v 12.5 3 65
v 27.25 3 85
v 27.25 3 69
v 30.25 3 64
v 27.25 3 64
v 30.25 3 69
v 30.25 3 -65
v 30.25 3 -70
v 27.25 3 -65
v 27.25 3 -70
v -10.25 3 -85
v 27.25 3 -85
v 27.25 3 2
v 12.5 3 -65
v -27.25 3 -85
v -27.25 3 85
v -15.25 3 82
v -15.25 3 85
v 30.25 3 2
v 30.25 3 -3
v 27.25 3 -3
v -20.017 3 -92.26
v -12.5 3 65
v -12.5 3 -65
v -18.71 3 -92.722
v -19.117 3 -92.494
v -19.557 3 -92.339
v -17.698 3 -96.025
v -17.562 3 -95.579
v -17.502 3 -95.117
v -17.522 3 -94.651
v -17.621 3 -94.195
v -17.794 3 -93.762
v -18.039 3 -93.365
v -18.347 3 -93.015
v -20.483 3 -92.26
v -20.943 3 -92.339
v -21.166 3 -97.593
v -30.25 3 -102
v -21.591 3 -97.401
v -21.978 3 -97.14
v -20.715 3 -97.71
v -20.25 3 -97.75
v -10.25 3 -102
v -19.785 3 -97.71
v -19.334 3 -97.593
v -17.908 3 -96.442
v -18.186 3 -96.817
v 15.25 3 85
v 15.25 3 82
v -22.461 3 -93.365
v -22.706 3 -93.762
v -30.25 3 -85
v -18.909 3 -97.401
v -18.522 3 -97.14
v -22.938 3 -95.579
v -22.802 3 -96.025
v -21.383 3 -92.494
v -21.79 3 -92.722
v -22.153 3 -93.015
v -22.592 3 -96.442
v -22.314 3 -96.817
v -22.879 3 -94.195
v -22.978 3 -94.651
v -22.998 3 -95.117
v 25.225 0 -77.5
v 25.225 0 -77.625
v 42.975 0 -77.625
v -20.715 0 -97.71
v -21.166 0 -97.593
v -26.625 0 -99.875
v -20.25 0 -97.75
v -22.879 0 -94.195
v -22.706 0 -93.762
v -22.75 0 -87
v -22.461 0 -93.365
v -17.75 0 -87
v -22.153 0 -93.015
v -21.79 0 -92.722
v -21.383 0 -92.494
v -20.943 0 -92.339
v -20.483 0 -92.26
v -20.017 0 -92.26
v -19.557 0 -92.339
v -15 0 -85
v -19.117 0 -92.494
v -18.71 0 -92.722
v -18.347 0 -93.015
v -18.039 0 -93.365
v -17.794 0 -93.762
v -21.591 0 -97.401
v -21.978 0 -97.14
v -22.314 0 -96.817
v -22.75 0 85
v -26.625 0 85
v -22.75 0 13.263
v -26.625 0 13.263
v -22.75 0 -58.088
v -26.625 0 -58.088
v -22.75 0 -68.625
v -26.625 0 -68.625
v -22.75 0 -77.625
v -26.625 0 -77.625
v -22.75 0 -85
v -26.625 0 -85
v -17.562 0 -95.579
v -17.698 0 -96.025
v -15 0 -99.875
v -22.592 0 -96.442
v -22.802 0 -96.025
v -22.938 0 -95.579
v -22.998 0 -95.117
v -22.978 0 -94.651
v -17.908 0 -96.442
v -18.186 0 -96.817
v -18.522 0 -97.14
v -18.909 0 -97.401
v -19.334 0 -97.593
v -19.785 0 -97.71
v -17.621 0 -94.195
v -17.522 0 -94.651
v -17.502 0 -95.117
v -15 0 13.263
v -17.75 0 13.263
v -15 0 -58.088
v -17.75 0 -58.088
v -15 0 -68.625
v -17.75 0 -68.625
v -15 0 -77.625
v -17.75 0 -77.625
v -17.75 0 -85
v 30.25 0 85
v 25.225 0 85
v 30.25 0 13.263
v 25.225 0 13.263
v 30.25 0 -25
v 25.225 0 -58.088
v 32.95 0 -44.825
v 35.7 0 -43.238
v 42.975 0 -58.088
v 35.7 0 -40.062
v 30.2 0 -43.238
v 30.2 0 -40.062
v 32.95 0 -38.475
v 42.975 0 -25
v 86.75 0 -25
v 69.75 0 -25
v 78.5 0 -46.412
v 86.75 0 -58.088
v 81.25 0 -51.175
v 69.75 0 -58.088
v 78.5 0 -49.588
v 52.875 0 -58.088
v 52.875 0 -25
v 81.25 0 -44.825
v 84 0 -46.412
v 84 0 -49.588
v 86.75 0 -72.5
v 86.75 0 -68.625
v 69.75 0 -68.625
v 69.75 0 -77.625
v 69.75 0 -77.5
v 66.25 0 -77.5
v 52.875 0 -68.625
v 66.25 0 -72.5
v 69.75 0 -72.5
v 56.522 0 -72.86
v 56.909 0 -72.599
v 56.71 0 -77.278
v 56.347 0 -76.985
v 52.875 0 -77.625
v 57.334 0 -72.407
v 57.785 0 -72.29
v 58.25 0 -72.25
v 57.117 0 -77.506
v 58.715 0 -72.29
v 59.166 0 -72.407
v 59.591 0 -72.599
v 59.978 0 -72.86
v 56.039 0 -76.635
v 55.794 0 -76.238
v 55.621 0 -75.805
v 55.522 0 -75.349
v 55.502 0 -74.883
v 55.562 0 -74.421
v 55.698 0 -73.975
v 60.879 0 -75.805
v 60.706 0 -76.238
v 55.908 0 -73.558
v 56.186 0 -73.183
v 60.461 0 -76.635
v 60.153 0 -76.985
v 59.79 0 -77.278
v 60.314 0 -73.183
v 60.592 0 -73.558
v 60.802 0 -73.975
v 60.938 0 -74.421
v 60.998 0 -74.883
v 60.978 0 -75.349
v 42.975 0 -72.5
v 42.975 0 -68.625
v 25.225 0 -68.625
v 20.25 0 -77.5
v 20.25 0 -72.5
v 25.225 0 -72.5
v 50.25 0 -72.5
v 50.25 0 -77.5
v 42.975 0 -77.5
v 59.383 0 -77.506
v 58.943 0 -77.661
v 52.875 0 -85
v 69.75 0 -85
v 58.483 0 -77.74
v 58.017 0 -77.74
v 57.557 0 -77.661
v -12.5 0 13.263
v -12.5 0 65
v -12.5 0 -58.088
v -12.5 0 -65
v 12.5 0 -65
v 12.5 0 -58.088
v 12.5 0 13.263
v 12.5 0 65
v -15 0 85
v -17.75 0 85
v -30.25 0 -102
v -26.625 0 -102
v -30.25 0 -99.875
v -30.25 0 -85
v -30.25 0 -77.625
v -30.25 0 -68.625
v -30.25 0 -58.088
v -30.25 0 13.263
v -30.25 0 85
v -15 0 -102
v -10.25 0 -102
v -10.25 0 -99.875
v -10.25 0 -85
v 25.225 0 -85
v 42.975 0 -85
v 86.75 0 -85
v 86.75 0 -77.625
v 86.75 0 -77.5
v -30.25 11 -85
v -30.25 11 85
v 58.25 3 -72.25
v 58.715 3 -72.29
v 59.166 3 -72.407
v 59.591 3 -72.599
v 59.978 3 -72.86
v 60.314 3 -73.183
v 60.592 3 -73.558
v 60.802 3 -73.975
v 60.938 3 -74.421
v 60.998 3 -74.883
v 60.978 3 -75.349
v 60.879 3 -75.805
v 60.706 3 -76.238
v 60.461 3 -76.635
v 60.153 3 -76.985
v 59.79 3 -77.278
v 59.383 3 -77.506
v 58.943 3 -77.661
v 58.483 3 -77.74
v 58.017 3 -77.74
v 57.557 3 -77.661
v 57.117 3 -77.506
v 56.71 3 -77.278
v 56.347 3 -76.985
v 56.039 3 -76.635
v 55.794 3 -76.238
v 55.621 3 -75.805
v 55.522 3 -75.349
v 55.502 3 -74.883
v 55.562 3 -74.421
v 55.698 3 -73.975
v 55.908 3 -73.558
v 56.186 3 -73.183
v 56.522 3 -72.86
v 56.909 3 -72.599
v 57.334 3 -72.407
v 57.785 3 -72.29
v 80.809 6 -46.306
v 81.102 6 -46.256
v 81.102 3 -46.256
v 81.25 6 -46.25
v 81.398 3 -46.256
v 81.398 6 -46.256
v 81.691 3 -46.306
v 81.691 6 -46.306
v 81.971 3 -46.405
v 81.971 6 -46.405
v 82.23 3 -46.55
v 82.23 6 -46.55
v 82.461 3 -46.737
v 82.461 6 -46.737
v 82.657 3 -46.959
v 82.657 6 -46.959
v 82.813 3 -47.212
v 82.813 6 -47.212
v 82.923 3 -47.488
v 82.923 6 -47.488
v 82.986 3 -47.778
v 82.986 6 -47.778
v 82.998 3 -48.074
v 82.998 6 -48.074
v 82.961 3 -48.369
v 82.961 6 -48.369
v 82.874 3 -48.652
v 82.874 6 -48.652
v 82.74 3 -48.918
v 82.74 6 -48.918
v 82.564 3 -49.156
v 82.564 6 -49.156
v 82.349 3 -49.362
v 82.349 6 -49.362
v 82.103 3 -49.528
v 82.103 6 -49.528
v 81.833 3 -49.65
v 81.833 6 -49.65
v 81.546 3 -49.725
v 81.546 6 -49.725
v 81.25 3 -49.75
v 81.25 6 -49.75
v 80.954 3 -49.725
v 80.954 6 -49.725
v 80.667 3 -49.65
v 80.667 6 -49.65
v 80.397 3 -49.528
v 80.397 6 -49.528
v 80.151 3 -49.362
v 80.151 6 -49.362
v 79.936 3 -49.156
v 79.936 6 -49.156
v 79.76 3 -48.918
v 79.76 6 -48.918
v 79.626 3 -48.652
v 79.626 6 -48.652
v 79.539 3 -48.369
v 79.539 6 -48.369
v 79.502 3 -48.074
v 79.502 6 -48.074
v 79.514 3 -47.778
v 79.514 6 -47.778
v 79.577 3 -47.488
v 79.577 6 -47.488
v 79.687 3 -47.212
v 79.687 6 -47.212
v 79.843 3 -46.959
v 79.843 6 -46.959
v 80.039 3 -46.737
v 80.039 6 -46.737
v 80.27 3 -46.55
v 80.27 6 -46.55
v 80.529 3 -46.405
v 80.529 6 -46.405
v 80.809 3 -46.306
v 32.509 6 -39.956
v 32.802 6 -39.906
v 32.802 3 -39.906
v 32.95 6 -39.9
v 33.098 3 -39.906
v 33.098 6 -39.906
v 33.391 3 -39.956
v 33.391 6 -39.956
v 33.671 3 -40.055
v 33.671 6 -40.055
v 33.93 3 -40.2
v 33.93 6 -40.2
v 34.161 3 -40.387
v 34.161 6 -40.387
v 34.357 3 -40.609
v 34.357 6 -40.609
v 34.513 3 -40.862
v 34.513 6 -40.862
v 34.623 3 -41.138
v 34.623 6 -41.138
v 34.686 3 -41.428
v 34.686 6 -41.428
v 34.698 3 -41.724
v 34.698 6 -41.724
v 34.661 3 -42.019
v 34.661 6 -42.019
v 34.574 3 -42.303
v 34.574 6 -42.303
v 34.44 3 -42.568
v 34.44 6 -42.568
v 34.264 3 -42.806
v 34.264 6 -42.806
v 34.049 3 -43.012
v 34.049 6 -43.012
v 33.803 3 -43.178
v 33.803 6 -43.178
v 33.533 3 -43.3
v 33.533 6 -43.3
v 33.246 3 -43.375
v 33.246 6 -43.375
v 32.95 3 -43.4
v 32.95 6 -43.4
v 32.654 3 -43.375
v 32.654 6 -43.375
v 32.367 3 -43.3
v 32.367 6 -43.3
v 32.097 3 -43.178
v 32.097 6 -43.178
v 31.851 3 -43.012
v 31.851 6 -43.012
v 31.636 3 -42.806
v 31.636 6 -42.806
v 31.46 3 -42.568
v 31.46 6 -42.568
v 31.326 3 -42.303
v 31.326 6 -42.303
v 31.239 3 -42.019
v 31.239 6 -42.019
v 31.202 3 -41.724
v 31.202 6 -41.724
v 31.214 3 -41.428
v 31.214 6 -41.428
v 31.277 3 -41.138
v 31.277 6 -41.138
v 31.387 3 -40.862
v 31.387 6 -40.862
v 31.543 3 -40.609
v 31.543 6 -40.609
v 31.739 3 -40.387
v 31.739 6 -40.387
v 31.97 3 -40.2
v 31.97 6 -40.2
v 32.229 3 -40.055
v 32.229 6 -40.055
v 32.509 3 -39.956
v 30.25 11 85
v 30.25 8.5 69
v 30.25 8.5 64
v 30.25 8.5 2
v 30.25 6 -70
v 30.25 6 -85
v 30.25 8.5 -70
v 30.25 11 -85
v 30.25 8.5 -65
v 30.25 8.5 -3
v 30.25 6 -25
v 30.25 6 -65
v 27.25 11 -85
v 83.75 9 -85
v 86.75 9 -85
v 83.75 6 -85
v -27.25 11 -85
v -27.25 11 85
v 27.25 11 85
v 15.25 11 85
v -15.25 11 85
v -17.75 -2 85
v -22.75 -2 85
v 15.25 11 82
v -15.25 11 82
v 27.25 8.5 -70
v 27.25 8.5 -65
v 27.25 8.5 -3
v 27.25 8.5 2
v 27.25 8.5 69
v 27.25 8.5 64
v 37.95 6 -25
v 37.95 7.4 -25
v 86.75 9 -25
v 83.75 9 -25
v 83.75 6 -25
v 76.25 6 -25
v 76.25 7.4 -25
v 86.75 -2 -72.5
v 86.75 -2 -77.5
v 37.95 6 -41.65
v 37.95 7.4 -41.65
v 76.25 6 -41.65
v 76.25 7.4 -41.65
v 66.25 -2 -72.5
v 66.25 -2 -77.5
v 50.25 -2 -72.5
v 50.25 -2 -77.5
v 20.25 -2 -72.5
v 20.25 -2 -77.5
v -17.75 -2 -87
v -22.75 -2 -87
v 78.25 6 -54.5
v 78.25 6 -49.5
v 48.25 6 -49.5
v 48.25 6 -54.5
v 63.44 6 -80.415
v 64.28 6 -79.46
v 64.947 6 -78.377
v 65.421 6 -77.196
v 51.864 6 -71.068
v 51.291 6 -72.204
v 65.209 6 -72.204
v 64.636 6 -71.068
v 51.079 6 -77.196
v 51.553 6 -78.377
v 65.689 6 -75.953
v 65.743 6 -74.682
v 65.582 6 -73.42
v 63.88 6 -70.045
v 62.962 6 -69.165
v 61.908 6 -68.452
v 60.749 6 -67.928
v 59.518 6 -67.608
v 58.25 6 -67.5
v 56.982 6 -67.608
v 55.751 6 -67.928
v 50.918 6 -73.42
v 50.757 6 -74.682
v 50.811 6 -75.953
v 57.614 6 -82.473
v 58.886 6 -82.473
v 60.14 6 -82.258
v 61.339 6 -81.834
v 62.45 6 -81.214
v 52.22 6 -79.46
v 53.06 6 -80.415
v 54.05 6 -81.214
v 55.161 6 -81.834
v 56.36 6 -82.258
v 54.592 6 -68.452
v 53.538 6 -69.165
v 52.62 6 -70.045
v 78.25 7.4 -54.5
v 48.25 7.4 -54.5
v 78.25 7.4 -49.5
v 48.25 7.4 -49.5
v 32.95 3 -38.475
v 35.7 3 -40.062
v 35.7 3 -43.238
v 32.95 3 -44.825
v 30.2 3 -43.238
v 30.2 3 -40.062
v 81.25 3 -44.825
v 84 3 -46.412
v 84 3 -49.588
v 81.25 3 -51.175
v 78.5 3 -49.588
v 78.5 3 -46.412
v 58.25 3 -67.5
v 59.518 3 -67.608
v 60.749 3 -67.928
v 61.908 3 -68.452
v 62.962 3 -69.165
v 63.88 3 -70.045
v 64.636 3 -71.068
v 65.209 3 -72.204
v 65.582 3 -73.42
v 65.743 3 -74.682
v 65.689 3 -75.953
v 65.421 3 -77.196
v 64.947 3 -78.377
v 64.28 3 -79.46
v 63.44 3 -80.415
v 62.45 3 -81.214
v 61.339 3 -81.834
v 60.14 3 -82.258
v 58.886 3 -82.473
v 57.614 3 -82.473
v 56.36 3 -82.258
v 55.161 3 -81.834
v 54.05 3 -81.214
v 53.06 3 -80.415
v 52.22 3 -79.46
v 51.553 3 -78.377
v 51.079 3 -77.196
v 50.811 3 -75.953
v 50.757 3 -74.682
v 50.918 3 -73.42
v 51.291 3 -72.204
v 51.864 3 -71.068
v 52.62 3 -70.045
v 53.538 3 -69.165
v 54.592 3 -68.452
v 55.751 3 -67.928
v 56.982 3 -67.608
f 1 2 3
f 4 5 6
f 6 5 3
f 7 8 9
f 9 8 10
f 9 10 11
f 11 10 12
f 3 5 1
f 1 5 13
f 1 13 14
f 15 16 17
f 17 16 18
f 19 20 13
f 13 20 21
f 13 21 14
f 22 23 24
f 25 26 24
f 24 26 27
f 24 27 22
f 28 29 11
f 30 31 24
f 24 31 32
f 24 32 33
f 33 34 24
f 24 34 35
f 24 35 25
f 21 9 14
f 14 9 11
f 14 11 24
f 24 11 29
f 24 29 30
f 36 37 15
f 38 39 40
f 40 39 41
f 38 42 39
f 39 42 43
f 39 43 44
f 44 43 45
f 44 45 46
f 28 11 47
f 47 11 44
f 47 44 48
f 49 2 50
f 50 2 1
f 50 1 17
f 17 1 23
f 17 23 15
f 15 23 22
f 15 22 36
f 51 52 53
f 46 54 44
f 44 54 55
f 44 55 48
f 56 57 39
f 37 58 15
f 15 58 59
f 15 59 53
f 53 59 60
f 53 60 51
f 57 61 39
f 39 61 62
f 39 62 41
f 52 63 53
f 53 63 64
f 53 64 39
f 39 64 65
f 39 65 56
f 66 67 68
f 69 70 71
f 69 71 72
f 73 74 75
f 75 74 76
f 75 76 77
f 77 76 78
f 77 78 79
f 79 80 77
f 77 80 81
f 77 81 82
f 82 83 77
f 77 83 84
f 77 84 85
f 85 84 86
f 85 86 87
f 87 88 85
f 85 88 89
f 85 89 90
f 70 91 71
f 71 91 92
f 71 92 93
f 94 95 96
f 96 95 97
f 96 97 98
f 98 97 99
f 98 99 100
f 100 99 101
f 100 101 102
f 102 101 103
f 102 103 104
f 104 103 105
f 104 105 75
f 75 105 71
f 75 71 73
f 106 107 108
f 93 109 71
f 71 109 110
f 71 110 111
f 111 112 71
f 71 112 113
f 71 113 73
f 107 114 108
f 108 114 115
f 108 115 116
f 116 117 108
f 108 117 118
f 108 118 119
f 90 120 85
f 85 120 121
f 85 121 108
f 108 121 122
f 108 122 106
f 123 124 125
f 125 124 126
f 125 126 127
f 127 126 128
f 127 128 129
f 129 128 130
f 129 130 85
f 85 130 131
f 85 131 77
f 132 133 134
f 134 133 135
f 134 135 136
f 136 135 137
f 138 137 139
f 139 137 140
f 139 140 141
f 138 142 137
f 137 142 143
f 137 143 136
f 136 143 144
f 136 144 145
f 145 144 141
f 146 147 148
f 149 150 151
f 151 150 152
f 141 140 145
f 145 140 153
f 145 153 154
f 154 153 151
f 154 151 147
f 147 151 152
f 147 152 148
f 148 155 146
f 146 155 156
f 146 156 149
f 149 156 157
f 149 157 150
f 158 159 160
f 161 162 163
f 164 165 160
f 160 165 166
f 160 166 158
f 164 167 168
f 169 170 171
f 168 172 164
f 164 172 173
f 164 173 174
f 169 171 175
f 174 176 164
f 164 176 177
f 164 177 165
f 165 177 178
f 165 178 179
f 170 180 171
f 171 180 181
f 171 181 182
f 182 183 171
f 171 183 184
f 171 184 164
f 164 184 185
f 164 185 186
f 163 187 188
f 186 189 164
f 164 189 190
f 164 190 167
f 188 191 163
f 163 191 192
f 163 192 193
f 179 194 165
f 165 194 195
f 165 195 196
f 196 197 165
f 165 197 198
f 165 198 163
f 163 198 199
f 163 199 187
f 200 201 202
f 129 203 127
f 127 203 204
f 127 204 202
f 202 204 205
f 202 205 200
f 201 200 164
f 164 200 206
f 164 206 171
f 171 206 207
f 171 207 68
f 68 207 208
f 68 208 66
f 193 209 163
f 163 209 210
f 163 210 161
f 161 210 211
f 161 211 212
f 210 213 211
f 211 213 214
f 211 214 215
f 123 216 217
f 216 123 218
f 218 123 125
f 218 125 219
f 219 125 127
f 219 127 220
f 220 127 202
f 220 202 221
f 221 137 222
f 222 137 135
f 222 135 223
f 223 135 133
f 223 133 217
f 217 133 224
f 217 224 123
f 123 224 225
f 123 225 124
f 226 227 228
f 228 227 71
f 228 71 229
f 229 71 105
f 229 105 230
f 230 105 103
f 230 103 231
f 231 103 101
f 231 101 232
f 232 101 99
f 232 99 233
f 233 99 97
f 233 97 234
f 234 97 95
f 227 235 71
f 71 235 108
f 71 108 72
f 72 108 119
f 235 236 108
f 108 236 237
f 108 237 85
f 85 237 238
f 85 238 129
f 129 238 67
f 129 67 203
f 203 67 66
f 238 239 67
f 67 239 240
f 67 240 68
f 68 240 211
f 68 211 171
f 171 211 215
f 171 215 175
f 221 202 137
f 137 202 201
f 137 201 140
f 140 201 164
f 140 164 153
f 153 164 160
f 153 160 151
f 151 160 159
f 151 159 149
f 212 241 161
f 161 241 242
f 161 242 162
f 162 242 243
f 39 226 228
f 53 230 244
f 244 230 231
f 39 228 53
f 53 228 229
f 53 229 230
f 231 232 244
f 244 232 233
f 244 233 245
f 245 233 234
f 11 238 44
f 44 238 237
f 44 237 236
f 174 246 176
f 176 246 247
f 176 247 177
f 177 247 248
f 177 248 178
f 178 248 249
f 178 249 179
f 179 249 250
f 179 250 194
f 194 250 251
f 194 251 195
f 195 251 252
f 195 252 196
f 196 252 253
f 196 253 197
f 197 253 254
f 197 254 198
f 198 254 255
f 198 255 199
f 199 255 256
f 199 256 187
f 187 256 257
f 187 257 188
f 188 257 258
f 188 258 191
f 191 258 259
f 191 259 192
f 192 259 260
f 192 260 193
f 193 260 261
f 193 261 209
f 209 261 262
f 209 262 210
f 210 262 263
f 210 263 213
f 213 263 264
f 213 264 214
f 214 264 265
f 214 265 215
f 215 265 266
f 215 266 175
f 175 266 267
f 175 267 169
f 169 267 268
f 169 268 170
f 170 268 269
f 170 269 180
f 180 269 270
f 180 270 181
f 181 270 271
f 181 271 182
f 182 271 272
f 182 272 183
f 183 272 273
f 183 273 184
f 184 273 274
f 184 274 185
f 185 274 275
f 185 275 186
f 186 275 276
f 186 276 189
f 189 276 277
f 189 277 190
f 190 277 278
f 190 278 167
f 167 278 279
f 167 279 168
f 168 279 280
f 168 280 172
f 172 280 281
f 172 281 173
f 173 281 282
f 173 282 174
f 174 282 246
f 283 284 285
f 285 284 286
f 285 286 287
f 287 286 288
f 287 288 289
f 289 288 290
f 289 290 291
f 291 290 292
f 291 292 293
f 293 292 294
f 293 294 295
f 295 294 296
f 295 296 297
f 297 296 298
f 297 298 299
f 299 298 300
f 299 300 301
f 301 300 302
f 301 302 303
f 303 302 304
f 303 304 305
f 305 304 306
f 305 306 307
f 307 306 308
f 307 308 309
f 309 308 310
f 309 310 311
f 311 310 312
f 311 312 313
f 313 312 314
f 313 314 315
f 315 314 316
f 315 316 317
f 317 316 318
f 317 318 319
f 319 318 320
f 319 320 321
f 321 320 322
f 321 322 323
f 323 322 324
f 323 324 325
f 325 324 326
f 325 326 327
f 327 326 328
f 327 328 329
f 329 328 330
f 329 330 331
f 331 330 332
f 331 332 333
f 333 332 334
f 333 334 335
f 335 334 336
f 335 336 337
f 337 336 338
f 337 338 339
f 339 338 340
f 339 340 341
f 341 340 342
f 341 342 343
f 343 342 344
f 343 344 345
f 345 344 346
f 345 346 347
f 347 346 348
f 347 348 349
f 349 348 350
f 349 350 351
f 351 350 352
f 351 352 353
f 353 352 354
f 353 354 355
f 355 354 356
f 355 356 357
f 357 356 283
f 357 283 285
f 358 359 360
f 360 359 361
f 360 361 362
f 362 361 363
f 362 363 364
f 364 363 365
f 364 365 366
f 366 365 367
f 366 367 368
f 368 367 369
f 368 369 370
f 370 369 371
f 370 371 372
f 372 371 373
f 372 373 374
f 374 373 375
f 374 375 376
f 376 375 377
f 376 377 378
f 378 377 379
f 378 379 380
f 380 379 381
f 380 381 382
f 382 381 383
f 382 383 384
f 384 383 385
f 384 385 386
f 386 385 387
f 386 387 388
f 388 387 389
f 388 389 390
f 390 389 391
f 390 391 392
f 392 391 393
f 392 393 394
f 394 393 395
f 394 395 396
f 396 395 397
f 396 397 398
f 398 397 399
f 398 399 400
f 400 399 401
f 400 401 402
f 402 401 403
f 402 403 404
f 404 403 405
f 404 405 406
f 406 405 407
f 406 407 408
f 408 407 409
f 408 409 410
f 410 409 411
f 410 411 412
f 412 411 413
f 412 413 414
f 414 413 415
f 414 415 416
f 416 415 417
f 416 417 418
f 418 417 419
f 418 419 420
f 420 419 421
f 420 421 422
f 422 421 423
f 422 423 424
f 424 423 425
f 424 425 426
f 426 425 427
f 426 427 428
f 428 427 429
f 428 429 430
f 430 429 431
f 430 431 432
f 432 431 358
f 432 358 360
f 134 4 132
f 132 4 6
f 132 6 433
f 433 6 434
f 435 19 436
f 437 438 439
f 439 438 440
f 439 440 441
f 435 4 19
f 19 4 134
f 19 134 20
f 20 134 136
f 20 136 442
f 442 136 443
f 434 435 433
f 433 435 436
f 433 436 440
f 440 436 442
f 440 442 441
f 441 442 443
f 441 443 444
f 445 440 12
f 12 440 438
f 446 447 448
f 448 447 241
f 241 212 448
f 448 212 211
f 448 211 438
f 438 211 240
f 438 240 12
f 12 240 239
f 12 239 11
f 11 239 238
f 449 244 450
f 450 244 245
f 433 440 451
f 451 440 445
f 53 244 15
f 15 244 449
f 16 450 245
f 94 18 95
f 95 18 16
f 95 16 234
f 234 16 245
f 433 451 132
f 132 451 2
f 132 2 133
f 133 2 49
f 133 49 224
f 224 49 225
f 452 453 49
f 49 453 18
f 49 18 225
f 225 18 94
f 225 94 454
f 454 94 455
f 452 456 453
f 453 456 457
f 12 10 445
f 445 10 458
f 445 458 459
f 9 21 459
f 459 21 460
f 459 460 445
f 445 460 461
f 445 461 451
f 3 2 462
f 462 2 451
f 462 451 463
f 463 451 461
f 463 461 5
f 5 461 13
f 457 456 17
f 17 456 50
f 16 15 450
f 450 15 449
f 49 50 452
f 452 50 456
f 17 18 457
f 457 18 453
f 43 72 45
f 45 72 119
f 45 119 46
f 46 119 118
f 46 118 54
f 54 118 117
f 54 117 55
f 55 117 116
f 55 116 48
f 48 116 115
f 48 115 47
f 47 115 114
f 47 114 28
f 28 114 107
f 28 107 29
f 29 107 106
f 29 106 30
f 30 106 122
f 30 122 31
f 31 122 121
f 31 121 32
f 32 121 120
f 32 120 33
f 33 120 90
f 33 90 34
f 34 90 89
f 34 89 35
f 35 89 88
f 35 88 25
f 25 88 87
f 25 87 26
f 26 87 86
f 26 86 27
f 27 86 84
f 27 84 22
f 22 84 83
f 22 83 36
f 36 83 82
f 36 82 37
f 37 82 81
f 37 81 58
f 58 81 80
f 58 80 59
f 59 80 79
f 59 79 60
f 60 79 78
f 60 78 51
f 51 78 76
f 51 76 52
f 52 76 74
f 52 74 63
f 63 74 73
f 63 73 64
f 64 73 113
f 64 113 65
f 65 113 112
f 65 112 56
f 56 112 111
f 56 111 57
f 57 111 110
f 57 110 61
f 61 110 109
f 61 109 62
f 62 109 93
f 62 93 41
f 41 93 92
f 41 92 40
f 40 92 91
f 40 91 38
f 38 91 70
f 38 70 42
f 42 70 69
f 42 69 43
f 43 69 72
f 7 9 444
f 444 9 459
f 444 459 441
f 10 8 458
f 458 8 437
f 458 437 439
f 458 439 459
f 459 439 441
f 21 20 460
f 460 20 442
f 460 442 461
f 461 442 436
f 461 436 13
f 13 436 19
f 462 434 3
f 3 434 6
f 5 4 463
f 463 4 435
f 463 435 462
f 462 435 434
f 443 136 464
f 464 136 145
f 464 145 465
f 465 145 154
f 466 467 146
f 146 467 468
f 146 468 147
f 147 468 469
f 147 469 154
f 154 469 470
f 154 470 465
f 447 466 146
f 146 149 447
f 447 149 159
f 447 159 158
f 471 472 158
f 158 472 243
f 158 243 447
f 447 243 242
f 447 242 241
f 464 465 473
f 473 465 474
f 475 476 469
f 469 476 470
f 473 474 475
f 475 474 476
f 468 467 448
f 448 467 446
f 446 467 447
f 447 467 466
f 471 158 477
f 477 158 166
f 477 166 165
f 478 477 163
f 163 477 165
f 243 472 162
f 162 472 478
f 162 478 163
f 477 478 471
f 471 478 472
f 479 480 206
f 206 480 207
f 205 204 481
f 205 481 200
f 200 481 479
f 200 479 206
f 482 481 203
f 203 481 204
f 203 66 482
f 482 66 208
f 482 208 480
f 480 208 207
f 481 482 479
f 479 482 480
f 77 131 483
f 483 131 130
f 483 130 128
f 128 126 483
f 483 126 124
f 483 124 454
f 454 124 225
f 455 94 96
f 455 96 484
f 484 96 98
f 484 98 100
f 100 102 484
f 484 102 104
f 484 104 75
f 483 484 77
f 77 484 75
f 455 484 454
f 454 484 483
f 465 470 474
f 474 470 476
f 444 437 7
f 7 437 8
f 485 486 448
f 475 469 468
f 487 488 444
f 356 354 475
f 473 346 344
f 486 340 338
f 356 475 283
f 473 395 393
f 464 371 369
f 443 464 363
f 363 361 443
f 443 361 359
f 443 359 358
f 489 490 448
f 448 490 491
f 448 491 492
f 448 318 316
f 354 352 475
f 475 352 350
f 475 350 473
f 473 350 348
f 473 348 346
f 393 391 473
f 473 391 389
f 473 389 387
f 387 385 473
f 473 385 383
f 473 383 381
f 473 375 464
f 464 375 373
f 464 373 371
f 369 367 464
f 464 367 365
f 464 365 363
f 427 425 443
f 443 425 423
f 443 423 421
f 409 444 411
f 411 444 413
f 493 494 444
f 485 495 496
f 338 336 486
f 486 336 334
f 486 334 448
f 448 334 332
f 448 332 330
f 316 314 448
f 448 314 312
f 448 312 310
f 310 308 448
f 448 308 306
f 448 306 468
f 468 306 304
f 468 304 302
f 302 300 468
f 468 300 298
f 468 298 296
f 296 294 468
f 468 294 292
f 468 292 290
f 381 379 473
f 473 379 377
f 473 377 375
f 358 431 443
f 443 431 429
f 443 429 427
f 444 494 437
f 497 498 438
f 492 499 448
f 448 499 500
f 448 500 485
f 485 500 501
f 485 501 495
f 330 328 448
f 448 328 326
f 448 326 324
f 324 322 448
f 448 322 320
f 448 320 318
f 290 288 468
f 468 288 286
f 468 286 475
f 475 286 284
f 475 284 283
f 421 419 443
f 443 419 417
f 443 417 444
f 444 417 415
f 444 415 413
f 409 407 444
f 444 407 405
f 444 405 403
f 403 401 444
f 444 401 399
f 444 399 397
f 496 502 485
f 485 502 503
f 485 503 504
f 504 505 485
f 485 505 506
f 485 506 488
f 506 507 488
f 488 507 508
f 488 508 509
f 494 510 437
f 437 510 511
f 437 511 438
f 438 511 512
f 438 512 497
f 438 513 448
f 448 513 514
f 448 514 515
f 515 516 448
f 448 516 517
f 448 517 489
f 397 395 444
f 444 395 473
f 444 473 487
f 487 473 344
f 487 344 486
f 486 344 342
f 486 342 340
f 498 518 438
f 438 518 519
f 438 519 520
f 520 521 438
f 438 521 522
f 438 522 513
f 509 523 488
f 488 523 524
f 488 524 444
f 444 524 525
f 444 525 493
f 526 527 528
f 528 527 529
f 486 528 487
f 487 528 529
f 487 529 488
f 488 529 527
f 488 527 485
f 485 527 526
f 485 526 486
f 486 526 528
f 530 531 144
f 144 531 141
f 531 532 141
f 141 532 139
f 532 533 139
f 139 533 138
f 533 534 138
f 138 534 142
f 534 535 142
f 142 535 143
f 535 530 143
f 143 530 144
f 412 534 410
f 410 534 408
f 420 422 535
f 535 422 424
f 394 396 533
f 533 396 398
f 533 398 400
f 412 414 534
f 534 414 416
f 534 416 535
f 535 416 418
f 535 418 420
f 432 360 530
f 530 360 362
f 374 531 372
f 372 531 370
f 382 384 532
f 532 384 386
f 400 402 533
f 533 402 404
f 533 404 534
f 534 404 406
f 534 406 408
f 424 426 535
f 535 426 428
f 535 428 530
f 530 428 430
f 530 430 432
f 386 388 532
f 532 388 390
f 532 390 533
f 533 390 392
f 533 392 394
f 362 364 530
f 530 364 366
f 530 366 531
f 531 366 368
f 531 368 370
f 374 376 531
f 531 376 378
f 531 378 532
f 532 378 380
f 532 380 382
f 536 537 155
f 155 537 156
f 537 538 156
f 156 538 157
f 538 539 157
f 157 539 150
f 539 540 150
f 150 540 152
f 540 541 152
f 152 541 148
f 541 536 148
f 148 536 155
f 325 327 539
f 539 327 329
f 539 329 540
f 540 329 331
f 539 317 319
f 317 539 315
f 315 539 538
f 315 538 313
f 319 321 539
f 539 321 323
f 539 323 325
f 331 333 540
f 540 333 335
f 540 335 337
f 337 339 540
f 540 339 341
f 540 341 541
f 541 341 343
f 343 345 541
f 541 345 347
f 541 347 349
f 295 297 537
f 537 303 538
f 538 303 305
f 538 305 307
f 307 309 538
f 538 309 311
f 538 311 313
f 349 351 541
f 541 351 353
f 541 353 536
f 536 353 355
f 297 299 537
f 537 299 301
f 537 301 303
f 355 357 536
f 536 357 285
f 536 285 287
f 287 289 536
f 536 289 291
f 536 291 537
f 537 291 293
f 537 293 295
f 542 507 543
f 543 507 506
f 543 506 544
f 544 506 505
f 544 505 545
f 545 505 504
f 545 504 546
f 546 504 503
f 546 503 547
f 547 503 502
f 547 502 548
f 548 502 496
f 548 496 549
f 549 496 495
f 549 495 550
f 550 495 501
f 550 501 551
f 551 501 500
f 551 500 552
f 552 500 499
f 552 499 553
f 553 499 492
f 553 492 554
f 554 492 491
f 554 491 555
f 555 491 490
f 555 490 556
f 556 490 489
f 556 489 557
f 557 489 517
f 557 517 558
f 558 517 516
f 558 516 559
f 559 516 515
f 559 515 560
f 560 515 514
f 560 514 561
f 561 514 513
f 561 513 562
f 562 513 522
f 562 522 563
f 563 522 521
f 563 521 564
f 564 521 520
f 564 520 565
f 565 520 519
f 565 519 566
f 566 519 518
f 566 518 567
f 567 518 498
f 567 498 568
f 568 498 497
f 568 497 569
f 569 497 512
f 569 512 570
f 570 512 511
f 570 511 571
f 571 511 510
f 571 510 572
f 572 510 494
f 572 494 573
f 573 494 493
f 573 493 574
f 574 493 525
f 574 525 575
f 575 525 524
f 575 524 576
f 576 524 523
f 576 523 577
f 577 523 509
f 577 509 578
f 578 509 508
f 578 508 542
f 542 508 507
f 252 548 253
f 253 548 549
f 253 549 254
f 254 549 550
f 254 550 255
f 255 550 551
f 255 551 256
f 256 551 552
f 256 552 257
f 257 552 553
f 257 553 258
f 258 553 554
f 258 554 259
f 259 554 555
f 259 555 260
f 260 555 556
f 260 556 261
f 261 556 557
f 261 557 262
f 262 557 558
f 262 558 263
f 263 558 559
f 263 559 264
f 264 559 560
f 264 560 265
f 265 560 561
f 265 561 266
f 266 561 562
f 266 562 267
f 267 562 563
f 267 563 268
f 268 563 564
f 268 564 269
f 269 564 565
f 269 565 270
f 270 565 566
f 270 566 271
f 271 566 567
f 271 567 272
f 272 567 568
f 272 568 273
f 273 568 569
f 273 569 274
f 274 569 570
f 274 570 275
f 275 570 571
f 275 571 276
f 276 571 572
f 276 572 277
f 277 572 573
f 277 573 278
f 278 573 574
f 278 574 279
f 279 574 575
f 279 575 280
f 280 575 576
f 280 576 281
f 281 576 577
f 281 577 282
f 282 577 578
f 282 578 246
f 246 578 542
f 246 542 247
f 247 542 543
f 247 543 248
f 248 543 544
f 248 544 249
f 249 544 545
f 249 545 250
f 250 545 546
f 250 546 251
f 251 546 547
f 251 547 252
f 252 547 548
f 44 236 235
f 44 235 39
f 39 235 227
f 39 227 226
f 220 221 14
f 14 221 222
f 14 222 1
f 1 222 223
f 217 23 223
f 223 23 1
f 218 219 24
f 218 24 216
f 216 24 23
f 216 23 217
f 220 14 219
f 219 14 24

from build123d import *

# Parameters (mm, degrees)
SKETCH1_W               = 60.5
SKETCH1_H               = 170
BOSS_EXTRUDE1_DEPTH     = 11
SKETCH2_W               = 54.5
SKETCH2_H               = 167
CUT_EXTRUDE1_DEPTH      = 8
SKETCH3_W               = 12
SKETCH3_H               = 3
CUT_EXTRUDE2_DEPTH      = 8
SKETCH4_W               = 20
SKETCH4_H               = 20
SKETCH4_R               = 2.75
BOSS_EXTRUDE3_DEPTH     = 3
SKETCH5_W               = 5
SKETCH5_H               = 5.5
CUT_EXTRUDE3_DEPTH      = 16
SKETCH7_W               = 56.5
SKETCH7_H               = 60
SKETCH7_R               = 1.75
BOSS_EXTRUDE7_DEPTH     = 3
SKETCH9_W               = 38.3
SKETCH9_H               = 16.65
SKETCH9_W_2             = 30
SKETCH9_H_2             = 5
BOSS_EXTRUDE8_DEPTH     = 1.4
SKETCH10_W              = 3
SKETCH10_H              = 60
BOSS_EXTRUDE9_DEPTH     = 6
SKETCH12_R              = 2.75
CUT_EXTRUDE4_DEPTH      = 3
SKETCH13_W              = 20.5
SKETCH13_H              = 5
SKETCH13_W_2            = 30
SKETCH13_W_3            = 5
SKETCH13_H_2            = 172
BOSS_EXTRUDE10_DEPTH    = 2
SKETCH14_W              = 38.3
SKETCH14_H              = 16.65
SKETCH14_W_2            = 30
SKETCH14_H_2            = 5
BOSS_EXTRUDE11_DEPTH    = 3
SKETCH15_W              = 53.5
SKETCH15_H              = 60
SKETCH15_R              = 1.75
SKETCH15_R_2            = 2.75
BOSS_EXTRUDE12_DEPTH    = 3
SKETCH16_R              = 1.75
CUT_EXTRUDE5_DEPTH      = 3
CUT_EXTRUDE6_START      = -3
SKETCH17_R              = 7.5
SKETCH17_R_2            = 2.75
CUT_EXTRUDE6_DEPTH      = 3
SKETCH18_W              = 20
SKETCH18_H              = 3
CUT_EXTRUDE7_DEPTH      = 3
CUT_EXTRUDE8_DEPTH      = 135.140085359
CUT_EXTRUDE8_DEPTH_BACK = 135.140085359
SKETCH19_W              = 25
SKETCH19_H              = 130


with BuildPart() as part:
    # Sketch1 → Boss-Extrude1 (new body)
    with BuildSketch(Plane(origin=(0, 0, 0), x_dir=(1, 0, 0), z_dir=(0, 1, 0))):
        Rectangle(SKETCH1_W, SKETCH1_H)
    extrude(amount=BOSS_EXTRUDE1_DEPTH)

    # Sketch2 → Cut-Extrude1 (cut)
    with BuildSketch(Plane(origin=(0, 11, 0), x_dir=(1, 0, 0), z_dir=(0, 1, 0))):
        with Locations((0, 1.5)):
            Rectangle(SKETCH2_W, SKETCH2_H)
    extrude(amount=-CUT_EXTRUDE1_DEPTH, mode=Mode.SUBTRACT)

    # Sketch3 → Cut-Extrude2 (cut)
    with BuildSketch(Plane(origin=(0, 11, 0), x_dir=(1, 0, 0), z_dir=(0, 1, 0))):
        with Locations((-21.25, -83.5)):
            Rectangle(SKETCH3_W, SKETCH3_H)
        with Locations((21.25, -83.5)):
            Rectangle(SKETCH3_W, SKETCH3_H)
    extrude(amount=-CUT_EXTRUDE2_DEPTH, mode=Mode.SUBTRACT)

    # Sketch4 → Boss-Extrude3 (add)
    with BuildSketch(Plane.XZ):
        with Locations((-20.25, -95)):
            Rectangle(SKETCH4_W, SKETCH4_H)
        with Locations(Location((-20.25, -95, 0), (0, 0, 270))):
            Circle(SKETCH4_R, mode=Mode.SUBTRACT)
    extrude(amount=-BOSS_EXTRUDE3_DEPTH)

    # Sketch5 → Cut-Extrude3 (cut)
    with BuildSketch(Plane.ZY.offset(-27.25)):
        with Locations((66.5, 5.75)):
            Rectangle(SKETCH5_W, SKETCH5_H)
        with Locations((-0.5, 5.75)):
            Rectangle(SKETCH5_W, SKETCH5_H)
        with Locations((-67.5, 5.75)):
            Rectangle(SKETCH5_W, SKETCH5_H)
    extrude(amount=-CUT_EXTRUDE3_DEPTH, mode=Mode.SUBTRACT)

    # Sketch7 → Boss-Extrude7 (add)
    with BuildSketch(Plane.XZ):
        with Locations((58.5, -55)):
            Rectangle(SKETCH7_W, SKETCH7_H)
        with Locations(Location((81.25, -48, 0), (0, 0, 270))):
            Circle(SKETCH7_R, mode=Mode.SUBTRACT)
        with Locations(Location((32.95, -41.65, 0), (0, 0, 270))):
            Circle(SKETCH7_R, mode=Mode.SUBTRACT)
    extrude(amount=-BOSS_EXTRUDE7_DEPTH)

    # Sketch9 → Boss-Extrude8 (add)
    with BuildSketch(Plane(origin=(0, 3, 0), x_dir=(1, 0, 0), z_dir=(0, 1, 0))):
        with Locations((57.1, 33.325)):
            Rectangle(SKETCH9_W, SKETCH9_H)
        with Locations((63.25, 52)):
            Rectangle(SKETCH9_W_2, SKETCH9_H_2)
    extrude(amount=BOSS_EXTRUDE8_DEPTH)

    # Sketch10 → Boss-Extrude9 (add)
    with BuildSketch(Plane(origin=(0, 3, 0), x_dir=(1, 0, 0), z_dir=(0, 1, 0))):
        with Locations((85.25, 55)):
            Rectangle(SKETCH10_W, SKETCH10_H)
    extrude(amount=BOSS_EXTRUDE9_DEPTH)

    # Sketch12 → Cut-Extrude4 (cut)
    with BuildSketch(Plane(origin=(0, 3, 0), x_dir=(1, 0, 0), z_dir=(0, 1, 0))):
        with Locations(Location((58.25, 75, 0), (0, 0, 270))):
            Circle(SKETCH12_R)
    extrude(amount=-CUT_EXTRUDE4_DEPTH, mode=Mode.SUBTRACT)

    # Sketch13 → Boss-Extrude10 (add)
    with BuildSketch(Plane.XZ):
        with Locations((76.5, -75)):
            Rectangle(SKETCH13_W, SKETCH13_H)
        with Locations((35.25, -75)):
            Rectangle(SKETCH13_W_2, SKETCH13_H)
        with Locations((-20.25, -1)):
            Rectangle(SKETCH13_W_3, SKETCH13_H_2)
    extrude(amount=BOSS_EXTRUDE10_DEPTH)

    # Sketch14 → Boss-Extrude11 (add)
    with BuildSketch(Plane(origin=(0, 4.4, 0), x_dir=(1, 0, 0), z_dir=(0, 1, 0))):
        with Locations((57.1, 33.325)):
            Rectangle(SKETCH14_W, SKETCH14_H)
        with Locations((63.25, 52)):
            Rectangle(SKETCH14_W_2, SKETCH14_H_2)
    extrude(amount=BOSS_EXTRUDE11_DEPTH)

    # Sketch15 → Boss-Extrude12 (add)
    with BuildSketch(Plane(origin=(0, 3, 0), x_dir=(1, 0, 0), z_dir=(0, 1, 0))):
        with Locations((57, 55)):
            Rectangle(SKETCH15_W, SKETCH15_H)
        with Locations(Location((32.95, 41.65, 0), (0, 0, 90))):
            Circle(SKETCH15_R, mode=Mode.SUBTRACT)
        with Locations(Location((81.25, 48, 0), (0, 0, 90))):
            Circle(SKETCH15_R, mode=Mode.SUBTRACT)
        with Locations(Location((58.25, 75, 0), (0, 0, 270))):
            Circle(SKETCH15_R_2, mode=Mode.SUBTRACT)
    extrude(amount=BOSS_EXTRUDE12_DEPTH)

    # Sketch16 → Cut-Extrude5 (cut)
    # profile 1 of 2: a face of its own
    with BuildSketch(Plane.XZ):
        Polygon((81.25, -44.824573519), (78.5, -46.41228676), (78.5, -49.58771324), (81.25, -51.175426481), (84, -49.58771324), (84, -46.41228676), align=None)
        with Locations(Location((81.25, -48, 0), (0, 0, 270))):
            Circle(SKETCH16_R, mode=Mode.SUBTRACT)
    # profile 2 of 2: a face of its own
    with BuildSketch(Plane.XZ):
        Polygon((32.95, -38.474573519), (30.2, -40.06228676), (30.2, -43.23771324), (32.95, -44.825426481), (35.7, -43.23771324), (35.7, -40.06228676), align=None)
        with Locations(Location((32.95, -41.65, 0), (0, 0, 270))):
            Circle(SKETCH16_R, mode=Mode.SUBTRACT)
    extrude(amount=-CUT_EXTRUDE5_DEPTH, mode=Mode.SUBTRACT)

    # Sketch17 → Cut-Extrude6 (cut)
    with BuildSketch(Plane(origin=(0, 6, 0), x_dir=(1, 0, 0), z_dir=(0, 1, 0)).offset(CUT_EXTRUDE6_START)):
        with Locations(Location((58.25, 75, 0), (0, 0, 270))):
            Circle(SKETCH17_R)
        with Locations(Location((58.25, 75, 0), (0, 0, 270))):
            Circle(SKETCH17_R_2, mode=Mode.SUBTRACT)
    extrude(amount=CUT_EXTRUDE6_DEPTH, mode=Mode.SUBTRACT)

    # Sketch18 → Cut-Extrude7 (cut)
    with BuildSketch(Plane(origin=(0, 0, -105), x_dir=(-1, 0, 0), z_dir=(0, 0, -1))):
        with Locations((20.25, 1.5)):
            Rectangle(SKETCH18_W, SKETCH18_H)
    extrude(amount=-CUT_EXTRUDE7_DEPTH, mode=Mode.SUBTRACT)

    # Sketch19 → Cut-Extrude8 (cut, two sides: drawn at the far end of the back side and taken through both)
    with BuildSketch(Plane(origin=(0, 3, 0), x_dir=(1, 0, 0), z_dir=(0, 1, 0)).offset(-CUT_EXTRUDE8_DEPTH_BACK)):
        Rectangle(SKETCH19_W, SKETCH19_H)
    extrude(amount=CUT_EXTRUDE8_DEPTH + CUT_EXTRUDE8_DEPTH_BACK, mode=Mode.SUBTRACT)


solid = part.part
